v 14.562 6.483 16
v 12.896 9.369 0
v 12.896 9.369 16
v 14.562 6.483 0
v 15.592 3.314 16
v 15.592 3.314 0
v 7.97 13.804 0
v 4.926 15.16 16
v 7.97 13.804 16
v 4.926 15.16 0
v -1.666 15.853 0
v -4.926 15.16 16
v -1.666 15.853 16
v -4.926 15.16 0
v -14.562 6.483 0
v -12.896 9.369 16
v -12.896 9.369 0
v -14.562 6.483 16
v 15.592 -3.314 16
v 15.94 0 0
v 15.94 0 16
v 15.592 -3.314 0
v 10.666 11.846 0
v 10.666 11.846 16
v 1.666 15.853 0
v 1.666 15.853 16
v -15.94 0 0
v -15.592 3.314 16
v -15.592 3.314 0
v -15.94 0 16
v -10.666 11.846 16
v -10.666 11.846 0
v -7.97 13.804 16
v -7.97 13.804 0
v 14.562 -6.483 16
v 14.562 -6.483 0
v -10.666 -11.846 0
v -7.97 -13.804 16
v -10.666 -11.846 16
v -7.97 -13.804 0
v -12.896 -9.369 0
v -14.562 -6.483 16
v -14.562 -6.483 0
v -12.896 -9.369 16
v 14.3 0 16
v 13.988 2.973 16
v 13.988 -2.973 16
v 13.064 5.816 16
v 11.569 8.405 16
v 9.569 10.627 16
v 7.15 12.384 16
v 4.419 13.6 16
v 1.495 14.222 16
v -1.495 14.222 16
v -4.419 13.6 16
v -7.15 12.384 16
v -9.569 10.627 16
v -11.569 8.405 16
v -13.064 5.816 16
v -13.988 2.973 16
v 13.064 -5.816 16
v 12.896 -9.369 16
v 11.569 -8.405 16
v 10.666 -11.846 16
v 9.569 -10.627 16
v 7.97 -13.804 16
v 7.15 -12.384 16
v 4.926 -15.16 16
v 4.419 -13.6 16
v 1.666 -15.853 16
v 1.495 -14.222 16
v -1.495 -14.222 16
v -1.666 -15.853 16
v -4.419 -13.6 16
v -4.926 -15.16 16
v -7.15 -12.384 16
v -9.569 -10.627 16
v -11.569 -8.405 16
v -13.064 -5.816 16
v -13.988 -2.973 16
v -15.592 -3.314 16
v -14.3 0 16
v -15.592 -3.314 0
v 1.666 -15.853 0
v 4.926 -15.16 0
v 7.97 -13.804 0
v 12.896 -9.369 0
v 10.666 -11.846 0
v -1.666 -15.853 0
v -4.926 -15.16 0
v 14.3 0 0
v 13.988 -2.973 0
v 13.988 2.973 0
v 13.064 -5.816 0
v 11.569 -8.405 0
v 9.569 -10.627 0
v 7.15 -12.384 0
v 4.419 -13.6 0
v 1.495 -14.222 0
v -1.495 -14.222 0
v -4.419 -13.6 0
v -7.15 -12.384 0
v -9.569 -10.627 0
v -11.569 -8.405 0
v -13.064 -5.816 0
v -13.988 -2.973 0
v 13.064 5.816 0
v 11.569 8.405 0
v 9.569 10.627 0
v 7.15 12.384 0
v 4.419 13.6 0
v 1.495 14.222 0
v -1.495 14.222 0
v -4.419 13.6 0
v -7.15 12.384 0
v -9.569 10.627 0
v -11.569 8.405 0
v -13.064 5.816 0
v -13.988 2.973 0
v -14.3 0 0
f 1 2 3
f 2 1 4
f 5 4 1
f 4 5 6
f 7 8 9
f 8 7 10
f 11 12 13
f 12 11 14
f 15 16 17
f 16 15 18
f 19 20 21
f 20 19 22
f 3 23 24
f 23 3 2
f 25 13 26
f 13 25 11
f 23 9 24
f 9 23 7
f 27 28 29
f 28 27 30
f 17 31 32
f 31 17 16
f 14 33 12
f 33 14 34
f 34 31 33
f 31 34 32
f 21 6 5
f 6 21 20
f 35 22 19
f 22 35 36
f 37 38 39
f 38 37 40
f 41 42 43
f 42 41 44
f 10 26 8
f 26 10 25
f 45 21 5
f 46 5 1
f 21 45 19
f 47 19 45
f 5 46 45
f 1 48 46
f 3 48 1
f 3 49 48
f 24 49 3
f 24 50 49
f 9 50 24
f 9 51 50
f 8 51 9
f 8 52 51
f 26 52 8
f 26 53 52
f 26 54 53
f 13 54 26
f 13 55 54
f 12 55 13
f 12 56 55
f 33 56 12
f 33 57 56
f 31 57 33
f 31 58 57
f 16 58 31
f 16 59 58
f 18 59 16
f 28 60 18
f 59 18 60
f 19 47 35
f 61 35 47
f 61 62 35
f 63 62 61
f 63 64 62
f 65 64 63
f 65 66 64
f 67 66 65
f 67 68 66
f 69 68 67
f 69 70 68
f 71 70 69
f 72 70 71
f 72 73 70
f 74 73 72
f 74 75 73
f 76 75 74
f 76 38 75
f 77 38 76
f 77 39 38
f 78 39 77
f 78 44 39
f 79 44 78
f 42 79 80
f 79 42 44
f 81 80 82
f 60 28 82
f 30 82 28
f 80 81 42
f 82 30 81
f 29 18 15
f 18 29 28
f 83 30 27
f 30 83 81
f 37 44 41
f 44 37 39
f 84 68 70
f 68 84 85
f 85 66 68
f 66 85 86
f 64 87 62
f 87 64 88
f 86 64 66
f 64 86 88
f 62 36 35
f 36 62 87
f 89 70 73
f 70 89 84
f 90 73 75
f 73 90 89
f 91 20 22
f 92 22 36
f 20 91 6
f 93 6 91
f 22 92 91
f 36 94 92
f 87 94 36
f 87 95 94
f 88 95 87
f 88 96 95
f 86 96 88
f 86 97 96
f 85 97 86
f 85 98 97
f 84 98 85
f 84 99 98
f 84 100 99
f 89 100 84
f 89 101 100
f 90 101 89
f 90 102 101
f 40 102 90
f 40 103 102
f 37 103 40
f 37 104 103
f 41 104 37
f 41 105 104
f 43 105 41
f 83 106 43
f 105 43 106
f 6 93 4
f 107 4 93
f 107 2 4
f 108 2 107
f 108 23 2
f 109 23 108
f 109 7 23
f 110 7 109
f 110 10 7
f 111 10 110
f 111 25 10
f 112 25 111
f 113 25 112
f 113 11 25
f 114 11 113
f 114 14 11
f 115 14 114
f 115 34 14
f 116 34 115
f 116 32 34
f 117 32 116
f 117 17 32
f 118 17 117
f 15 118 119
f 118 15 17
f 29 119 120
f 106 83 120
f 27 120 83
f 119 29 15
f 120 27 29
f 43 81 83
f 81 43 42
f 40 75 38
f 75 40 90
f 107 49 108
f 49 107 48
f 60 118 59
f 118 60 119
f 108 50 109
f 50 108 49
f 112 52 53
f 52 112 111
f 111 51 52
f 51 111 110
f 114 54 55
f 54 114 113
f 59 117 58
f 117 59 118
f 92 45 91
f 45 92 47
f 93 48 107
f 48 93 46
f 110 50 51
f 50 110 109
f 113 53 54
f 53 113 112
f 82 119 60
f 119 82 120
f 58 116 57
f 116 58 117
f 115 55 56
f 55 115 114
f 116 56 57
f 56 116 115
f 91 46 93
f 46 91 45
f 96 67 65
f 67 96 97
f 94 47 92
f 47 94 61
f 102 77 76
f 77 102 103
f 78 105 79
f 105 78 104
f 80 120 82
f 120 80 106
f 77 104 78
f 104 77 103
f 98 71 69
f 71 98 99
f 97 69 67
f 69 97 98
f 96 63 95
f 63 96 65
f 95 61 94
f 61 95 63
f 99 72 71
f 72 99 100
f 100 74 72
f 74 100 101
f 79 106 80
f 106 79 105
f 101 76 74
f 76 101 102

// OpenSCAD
difference() {
    cylinder(h = 16, d = 31.88, center = false);
    cylinder(h = 16, d = 28.6, center = false);
}
